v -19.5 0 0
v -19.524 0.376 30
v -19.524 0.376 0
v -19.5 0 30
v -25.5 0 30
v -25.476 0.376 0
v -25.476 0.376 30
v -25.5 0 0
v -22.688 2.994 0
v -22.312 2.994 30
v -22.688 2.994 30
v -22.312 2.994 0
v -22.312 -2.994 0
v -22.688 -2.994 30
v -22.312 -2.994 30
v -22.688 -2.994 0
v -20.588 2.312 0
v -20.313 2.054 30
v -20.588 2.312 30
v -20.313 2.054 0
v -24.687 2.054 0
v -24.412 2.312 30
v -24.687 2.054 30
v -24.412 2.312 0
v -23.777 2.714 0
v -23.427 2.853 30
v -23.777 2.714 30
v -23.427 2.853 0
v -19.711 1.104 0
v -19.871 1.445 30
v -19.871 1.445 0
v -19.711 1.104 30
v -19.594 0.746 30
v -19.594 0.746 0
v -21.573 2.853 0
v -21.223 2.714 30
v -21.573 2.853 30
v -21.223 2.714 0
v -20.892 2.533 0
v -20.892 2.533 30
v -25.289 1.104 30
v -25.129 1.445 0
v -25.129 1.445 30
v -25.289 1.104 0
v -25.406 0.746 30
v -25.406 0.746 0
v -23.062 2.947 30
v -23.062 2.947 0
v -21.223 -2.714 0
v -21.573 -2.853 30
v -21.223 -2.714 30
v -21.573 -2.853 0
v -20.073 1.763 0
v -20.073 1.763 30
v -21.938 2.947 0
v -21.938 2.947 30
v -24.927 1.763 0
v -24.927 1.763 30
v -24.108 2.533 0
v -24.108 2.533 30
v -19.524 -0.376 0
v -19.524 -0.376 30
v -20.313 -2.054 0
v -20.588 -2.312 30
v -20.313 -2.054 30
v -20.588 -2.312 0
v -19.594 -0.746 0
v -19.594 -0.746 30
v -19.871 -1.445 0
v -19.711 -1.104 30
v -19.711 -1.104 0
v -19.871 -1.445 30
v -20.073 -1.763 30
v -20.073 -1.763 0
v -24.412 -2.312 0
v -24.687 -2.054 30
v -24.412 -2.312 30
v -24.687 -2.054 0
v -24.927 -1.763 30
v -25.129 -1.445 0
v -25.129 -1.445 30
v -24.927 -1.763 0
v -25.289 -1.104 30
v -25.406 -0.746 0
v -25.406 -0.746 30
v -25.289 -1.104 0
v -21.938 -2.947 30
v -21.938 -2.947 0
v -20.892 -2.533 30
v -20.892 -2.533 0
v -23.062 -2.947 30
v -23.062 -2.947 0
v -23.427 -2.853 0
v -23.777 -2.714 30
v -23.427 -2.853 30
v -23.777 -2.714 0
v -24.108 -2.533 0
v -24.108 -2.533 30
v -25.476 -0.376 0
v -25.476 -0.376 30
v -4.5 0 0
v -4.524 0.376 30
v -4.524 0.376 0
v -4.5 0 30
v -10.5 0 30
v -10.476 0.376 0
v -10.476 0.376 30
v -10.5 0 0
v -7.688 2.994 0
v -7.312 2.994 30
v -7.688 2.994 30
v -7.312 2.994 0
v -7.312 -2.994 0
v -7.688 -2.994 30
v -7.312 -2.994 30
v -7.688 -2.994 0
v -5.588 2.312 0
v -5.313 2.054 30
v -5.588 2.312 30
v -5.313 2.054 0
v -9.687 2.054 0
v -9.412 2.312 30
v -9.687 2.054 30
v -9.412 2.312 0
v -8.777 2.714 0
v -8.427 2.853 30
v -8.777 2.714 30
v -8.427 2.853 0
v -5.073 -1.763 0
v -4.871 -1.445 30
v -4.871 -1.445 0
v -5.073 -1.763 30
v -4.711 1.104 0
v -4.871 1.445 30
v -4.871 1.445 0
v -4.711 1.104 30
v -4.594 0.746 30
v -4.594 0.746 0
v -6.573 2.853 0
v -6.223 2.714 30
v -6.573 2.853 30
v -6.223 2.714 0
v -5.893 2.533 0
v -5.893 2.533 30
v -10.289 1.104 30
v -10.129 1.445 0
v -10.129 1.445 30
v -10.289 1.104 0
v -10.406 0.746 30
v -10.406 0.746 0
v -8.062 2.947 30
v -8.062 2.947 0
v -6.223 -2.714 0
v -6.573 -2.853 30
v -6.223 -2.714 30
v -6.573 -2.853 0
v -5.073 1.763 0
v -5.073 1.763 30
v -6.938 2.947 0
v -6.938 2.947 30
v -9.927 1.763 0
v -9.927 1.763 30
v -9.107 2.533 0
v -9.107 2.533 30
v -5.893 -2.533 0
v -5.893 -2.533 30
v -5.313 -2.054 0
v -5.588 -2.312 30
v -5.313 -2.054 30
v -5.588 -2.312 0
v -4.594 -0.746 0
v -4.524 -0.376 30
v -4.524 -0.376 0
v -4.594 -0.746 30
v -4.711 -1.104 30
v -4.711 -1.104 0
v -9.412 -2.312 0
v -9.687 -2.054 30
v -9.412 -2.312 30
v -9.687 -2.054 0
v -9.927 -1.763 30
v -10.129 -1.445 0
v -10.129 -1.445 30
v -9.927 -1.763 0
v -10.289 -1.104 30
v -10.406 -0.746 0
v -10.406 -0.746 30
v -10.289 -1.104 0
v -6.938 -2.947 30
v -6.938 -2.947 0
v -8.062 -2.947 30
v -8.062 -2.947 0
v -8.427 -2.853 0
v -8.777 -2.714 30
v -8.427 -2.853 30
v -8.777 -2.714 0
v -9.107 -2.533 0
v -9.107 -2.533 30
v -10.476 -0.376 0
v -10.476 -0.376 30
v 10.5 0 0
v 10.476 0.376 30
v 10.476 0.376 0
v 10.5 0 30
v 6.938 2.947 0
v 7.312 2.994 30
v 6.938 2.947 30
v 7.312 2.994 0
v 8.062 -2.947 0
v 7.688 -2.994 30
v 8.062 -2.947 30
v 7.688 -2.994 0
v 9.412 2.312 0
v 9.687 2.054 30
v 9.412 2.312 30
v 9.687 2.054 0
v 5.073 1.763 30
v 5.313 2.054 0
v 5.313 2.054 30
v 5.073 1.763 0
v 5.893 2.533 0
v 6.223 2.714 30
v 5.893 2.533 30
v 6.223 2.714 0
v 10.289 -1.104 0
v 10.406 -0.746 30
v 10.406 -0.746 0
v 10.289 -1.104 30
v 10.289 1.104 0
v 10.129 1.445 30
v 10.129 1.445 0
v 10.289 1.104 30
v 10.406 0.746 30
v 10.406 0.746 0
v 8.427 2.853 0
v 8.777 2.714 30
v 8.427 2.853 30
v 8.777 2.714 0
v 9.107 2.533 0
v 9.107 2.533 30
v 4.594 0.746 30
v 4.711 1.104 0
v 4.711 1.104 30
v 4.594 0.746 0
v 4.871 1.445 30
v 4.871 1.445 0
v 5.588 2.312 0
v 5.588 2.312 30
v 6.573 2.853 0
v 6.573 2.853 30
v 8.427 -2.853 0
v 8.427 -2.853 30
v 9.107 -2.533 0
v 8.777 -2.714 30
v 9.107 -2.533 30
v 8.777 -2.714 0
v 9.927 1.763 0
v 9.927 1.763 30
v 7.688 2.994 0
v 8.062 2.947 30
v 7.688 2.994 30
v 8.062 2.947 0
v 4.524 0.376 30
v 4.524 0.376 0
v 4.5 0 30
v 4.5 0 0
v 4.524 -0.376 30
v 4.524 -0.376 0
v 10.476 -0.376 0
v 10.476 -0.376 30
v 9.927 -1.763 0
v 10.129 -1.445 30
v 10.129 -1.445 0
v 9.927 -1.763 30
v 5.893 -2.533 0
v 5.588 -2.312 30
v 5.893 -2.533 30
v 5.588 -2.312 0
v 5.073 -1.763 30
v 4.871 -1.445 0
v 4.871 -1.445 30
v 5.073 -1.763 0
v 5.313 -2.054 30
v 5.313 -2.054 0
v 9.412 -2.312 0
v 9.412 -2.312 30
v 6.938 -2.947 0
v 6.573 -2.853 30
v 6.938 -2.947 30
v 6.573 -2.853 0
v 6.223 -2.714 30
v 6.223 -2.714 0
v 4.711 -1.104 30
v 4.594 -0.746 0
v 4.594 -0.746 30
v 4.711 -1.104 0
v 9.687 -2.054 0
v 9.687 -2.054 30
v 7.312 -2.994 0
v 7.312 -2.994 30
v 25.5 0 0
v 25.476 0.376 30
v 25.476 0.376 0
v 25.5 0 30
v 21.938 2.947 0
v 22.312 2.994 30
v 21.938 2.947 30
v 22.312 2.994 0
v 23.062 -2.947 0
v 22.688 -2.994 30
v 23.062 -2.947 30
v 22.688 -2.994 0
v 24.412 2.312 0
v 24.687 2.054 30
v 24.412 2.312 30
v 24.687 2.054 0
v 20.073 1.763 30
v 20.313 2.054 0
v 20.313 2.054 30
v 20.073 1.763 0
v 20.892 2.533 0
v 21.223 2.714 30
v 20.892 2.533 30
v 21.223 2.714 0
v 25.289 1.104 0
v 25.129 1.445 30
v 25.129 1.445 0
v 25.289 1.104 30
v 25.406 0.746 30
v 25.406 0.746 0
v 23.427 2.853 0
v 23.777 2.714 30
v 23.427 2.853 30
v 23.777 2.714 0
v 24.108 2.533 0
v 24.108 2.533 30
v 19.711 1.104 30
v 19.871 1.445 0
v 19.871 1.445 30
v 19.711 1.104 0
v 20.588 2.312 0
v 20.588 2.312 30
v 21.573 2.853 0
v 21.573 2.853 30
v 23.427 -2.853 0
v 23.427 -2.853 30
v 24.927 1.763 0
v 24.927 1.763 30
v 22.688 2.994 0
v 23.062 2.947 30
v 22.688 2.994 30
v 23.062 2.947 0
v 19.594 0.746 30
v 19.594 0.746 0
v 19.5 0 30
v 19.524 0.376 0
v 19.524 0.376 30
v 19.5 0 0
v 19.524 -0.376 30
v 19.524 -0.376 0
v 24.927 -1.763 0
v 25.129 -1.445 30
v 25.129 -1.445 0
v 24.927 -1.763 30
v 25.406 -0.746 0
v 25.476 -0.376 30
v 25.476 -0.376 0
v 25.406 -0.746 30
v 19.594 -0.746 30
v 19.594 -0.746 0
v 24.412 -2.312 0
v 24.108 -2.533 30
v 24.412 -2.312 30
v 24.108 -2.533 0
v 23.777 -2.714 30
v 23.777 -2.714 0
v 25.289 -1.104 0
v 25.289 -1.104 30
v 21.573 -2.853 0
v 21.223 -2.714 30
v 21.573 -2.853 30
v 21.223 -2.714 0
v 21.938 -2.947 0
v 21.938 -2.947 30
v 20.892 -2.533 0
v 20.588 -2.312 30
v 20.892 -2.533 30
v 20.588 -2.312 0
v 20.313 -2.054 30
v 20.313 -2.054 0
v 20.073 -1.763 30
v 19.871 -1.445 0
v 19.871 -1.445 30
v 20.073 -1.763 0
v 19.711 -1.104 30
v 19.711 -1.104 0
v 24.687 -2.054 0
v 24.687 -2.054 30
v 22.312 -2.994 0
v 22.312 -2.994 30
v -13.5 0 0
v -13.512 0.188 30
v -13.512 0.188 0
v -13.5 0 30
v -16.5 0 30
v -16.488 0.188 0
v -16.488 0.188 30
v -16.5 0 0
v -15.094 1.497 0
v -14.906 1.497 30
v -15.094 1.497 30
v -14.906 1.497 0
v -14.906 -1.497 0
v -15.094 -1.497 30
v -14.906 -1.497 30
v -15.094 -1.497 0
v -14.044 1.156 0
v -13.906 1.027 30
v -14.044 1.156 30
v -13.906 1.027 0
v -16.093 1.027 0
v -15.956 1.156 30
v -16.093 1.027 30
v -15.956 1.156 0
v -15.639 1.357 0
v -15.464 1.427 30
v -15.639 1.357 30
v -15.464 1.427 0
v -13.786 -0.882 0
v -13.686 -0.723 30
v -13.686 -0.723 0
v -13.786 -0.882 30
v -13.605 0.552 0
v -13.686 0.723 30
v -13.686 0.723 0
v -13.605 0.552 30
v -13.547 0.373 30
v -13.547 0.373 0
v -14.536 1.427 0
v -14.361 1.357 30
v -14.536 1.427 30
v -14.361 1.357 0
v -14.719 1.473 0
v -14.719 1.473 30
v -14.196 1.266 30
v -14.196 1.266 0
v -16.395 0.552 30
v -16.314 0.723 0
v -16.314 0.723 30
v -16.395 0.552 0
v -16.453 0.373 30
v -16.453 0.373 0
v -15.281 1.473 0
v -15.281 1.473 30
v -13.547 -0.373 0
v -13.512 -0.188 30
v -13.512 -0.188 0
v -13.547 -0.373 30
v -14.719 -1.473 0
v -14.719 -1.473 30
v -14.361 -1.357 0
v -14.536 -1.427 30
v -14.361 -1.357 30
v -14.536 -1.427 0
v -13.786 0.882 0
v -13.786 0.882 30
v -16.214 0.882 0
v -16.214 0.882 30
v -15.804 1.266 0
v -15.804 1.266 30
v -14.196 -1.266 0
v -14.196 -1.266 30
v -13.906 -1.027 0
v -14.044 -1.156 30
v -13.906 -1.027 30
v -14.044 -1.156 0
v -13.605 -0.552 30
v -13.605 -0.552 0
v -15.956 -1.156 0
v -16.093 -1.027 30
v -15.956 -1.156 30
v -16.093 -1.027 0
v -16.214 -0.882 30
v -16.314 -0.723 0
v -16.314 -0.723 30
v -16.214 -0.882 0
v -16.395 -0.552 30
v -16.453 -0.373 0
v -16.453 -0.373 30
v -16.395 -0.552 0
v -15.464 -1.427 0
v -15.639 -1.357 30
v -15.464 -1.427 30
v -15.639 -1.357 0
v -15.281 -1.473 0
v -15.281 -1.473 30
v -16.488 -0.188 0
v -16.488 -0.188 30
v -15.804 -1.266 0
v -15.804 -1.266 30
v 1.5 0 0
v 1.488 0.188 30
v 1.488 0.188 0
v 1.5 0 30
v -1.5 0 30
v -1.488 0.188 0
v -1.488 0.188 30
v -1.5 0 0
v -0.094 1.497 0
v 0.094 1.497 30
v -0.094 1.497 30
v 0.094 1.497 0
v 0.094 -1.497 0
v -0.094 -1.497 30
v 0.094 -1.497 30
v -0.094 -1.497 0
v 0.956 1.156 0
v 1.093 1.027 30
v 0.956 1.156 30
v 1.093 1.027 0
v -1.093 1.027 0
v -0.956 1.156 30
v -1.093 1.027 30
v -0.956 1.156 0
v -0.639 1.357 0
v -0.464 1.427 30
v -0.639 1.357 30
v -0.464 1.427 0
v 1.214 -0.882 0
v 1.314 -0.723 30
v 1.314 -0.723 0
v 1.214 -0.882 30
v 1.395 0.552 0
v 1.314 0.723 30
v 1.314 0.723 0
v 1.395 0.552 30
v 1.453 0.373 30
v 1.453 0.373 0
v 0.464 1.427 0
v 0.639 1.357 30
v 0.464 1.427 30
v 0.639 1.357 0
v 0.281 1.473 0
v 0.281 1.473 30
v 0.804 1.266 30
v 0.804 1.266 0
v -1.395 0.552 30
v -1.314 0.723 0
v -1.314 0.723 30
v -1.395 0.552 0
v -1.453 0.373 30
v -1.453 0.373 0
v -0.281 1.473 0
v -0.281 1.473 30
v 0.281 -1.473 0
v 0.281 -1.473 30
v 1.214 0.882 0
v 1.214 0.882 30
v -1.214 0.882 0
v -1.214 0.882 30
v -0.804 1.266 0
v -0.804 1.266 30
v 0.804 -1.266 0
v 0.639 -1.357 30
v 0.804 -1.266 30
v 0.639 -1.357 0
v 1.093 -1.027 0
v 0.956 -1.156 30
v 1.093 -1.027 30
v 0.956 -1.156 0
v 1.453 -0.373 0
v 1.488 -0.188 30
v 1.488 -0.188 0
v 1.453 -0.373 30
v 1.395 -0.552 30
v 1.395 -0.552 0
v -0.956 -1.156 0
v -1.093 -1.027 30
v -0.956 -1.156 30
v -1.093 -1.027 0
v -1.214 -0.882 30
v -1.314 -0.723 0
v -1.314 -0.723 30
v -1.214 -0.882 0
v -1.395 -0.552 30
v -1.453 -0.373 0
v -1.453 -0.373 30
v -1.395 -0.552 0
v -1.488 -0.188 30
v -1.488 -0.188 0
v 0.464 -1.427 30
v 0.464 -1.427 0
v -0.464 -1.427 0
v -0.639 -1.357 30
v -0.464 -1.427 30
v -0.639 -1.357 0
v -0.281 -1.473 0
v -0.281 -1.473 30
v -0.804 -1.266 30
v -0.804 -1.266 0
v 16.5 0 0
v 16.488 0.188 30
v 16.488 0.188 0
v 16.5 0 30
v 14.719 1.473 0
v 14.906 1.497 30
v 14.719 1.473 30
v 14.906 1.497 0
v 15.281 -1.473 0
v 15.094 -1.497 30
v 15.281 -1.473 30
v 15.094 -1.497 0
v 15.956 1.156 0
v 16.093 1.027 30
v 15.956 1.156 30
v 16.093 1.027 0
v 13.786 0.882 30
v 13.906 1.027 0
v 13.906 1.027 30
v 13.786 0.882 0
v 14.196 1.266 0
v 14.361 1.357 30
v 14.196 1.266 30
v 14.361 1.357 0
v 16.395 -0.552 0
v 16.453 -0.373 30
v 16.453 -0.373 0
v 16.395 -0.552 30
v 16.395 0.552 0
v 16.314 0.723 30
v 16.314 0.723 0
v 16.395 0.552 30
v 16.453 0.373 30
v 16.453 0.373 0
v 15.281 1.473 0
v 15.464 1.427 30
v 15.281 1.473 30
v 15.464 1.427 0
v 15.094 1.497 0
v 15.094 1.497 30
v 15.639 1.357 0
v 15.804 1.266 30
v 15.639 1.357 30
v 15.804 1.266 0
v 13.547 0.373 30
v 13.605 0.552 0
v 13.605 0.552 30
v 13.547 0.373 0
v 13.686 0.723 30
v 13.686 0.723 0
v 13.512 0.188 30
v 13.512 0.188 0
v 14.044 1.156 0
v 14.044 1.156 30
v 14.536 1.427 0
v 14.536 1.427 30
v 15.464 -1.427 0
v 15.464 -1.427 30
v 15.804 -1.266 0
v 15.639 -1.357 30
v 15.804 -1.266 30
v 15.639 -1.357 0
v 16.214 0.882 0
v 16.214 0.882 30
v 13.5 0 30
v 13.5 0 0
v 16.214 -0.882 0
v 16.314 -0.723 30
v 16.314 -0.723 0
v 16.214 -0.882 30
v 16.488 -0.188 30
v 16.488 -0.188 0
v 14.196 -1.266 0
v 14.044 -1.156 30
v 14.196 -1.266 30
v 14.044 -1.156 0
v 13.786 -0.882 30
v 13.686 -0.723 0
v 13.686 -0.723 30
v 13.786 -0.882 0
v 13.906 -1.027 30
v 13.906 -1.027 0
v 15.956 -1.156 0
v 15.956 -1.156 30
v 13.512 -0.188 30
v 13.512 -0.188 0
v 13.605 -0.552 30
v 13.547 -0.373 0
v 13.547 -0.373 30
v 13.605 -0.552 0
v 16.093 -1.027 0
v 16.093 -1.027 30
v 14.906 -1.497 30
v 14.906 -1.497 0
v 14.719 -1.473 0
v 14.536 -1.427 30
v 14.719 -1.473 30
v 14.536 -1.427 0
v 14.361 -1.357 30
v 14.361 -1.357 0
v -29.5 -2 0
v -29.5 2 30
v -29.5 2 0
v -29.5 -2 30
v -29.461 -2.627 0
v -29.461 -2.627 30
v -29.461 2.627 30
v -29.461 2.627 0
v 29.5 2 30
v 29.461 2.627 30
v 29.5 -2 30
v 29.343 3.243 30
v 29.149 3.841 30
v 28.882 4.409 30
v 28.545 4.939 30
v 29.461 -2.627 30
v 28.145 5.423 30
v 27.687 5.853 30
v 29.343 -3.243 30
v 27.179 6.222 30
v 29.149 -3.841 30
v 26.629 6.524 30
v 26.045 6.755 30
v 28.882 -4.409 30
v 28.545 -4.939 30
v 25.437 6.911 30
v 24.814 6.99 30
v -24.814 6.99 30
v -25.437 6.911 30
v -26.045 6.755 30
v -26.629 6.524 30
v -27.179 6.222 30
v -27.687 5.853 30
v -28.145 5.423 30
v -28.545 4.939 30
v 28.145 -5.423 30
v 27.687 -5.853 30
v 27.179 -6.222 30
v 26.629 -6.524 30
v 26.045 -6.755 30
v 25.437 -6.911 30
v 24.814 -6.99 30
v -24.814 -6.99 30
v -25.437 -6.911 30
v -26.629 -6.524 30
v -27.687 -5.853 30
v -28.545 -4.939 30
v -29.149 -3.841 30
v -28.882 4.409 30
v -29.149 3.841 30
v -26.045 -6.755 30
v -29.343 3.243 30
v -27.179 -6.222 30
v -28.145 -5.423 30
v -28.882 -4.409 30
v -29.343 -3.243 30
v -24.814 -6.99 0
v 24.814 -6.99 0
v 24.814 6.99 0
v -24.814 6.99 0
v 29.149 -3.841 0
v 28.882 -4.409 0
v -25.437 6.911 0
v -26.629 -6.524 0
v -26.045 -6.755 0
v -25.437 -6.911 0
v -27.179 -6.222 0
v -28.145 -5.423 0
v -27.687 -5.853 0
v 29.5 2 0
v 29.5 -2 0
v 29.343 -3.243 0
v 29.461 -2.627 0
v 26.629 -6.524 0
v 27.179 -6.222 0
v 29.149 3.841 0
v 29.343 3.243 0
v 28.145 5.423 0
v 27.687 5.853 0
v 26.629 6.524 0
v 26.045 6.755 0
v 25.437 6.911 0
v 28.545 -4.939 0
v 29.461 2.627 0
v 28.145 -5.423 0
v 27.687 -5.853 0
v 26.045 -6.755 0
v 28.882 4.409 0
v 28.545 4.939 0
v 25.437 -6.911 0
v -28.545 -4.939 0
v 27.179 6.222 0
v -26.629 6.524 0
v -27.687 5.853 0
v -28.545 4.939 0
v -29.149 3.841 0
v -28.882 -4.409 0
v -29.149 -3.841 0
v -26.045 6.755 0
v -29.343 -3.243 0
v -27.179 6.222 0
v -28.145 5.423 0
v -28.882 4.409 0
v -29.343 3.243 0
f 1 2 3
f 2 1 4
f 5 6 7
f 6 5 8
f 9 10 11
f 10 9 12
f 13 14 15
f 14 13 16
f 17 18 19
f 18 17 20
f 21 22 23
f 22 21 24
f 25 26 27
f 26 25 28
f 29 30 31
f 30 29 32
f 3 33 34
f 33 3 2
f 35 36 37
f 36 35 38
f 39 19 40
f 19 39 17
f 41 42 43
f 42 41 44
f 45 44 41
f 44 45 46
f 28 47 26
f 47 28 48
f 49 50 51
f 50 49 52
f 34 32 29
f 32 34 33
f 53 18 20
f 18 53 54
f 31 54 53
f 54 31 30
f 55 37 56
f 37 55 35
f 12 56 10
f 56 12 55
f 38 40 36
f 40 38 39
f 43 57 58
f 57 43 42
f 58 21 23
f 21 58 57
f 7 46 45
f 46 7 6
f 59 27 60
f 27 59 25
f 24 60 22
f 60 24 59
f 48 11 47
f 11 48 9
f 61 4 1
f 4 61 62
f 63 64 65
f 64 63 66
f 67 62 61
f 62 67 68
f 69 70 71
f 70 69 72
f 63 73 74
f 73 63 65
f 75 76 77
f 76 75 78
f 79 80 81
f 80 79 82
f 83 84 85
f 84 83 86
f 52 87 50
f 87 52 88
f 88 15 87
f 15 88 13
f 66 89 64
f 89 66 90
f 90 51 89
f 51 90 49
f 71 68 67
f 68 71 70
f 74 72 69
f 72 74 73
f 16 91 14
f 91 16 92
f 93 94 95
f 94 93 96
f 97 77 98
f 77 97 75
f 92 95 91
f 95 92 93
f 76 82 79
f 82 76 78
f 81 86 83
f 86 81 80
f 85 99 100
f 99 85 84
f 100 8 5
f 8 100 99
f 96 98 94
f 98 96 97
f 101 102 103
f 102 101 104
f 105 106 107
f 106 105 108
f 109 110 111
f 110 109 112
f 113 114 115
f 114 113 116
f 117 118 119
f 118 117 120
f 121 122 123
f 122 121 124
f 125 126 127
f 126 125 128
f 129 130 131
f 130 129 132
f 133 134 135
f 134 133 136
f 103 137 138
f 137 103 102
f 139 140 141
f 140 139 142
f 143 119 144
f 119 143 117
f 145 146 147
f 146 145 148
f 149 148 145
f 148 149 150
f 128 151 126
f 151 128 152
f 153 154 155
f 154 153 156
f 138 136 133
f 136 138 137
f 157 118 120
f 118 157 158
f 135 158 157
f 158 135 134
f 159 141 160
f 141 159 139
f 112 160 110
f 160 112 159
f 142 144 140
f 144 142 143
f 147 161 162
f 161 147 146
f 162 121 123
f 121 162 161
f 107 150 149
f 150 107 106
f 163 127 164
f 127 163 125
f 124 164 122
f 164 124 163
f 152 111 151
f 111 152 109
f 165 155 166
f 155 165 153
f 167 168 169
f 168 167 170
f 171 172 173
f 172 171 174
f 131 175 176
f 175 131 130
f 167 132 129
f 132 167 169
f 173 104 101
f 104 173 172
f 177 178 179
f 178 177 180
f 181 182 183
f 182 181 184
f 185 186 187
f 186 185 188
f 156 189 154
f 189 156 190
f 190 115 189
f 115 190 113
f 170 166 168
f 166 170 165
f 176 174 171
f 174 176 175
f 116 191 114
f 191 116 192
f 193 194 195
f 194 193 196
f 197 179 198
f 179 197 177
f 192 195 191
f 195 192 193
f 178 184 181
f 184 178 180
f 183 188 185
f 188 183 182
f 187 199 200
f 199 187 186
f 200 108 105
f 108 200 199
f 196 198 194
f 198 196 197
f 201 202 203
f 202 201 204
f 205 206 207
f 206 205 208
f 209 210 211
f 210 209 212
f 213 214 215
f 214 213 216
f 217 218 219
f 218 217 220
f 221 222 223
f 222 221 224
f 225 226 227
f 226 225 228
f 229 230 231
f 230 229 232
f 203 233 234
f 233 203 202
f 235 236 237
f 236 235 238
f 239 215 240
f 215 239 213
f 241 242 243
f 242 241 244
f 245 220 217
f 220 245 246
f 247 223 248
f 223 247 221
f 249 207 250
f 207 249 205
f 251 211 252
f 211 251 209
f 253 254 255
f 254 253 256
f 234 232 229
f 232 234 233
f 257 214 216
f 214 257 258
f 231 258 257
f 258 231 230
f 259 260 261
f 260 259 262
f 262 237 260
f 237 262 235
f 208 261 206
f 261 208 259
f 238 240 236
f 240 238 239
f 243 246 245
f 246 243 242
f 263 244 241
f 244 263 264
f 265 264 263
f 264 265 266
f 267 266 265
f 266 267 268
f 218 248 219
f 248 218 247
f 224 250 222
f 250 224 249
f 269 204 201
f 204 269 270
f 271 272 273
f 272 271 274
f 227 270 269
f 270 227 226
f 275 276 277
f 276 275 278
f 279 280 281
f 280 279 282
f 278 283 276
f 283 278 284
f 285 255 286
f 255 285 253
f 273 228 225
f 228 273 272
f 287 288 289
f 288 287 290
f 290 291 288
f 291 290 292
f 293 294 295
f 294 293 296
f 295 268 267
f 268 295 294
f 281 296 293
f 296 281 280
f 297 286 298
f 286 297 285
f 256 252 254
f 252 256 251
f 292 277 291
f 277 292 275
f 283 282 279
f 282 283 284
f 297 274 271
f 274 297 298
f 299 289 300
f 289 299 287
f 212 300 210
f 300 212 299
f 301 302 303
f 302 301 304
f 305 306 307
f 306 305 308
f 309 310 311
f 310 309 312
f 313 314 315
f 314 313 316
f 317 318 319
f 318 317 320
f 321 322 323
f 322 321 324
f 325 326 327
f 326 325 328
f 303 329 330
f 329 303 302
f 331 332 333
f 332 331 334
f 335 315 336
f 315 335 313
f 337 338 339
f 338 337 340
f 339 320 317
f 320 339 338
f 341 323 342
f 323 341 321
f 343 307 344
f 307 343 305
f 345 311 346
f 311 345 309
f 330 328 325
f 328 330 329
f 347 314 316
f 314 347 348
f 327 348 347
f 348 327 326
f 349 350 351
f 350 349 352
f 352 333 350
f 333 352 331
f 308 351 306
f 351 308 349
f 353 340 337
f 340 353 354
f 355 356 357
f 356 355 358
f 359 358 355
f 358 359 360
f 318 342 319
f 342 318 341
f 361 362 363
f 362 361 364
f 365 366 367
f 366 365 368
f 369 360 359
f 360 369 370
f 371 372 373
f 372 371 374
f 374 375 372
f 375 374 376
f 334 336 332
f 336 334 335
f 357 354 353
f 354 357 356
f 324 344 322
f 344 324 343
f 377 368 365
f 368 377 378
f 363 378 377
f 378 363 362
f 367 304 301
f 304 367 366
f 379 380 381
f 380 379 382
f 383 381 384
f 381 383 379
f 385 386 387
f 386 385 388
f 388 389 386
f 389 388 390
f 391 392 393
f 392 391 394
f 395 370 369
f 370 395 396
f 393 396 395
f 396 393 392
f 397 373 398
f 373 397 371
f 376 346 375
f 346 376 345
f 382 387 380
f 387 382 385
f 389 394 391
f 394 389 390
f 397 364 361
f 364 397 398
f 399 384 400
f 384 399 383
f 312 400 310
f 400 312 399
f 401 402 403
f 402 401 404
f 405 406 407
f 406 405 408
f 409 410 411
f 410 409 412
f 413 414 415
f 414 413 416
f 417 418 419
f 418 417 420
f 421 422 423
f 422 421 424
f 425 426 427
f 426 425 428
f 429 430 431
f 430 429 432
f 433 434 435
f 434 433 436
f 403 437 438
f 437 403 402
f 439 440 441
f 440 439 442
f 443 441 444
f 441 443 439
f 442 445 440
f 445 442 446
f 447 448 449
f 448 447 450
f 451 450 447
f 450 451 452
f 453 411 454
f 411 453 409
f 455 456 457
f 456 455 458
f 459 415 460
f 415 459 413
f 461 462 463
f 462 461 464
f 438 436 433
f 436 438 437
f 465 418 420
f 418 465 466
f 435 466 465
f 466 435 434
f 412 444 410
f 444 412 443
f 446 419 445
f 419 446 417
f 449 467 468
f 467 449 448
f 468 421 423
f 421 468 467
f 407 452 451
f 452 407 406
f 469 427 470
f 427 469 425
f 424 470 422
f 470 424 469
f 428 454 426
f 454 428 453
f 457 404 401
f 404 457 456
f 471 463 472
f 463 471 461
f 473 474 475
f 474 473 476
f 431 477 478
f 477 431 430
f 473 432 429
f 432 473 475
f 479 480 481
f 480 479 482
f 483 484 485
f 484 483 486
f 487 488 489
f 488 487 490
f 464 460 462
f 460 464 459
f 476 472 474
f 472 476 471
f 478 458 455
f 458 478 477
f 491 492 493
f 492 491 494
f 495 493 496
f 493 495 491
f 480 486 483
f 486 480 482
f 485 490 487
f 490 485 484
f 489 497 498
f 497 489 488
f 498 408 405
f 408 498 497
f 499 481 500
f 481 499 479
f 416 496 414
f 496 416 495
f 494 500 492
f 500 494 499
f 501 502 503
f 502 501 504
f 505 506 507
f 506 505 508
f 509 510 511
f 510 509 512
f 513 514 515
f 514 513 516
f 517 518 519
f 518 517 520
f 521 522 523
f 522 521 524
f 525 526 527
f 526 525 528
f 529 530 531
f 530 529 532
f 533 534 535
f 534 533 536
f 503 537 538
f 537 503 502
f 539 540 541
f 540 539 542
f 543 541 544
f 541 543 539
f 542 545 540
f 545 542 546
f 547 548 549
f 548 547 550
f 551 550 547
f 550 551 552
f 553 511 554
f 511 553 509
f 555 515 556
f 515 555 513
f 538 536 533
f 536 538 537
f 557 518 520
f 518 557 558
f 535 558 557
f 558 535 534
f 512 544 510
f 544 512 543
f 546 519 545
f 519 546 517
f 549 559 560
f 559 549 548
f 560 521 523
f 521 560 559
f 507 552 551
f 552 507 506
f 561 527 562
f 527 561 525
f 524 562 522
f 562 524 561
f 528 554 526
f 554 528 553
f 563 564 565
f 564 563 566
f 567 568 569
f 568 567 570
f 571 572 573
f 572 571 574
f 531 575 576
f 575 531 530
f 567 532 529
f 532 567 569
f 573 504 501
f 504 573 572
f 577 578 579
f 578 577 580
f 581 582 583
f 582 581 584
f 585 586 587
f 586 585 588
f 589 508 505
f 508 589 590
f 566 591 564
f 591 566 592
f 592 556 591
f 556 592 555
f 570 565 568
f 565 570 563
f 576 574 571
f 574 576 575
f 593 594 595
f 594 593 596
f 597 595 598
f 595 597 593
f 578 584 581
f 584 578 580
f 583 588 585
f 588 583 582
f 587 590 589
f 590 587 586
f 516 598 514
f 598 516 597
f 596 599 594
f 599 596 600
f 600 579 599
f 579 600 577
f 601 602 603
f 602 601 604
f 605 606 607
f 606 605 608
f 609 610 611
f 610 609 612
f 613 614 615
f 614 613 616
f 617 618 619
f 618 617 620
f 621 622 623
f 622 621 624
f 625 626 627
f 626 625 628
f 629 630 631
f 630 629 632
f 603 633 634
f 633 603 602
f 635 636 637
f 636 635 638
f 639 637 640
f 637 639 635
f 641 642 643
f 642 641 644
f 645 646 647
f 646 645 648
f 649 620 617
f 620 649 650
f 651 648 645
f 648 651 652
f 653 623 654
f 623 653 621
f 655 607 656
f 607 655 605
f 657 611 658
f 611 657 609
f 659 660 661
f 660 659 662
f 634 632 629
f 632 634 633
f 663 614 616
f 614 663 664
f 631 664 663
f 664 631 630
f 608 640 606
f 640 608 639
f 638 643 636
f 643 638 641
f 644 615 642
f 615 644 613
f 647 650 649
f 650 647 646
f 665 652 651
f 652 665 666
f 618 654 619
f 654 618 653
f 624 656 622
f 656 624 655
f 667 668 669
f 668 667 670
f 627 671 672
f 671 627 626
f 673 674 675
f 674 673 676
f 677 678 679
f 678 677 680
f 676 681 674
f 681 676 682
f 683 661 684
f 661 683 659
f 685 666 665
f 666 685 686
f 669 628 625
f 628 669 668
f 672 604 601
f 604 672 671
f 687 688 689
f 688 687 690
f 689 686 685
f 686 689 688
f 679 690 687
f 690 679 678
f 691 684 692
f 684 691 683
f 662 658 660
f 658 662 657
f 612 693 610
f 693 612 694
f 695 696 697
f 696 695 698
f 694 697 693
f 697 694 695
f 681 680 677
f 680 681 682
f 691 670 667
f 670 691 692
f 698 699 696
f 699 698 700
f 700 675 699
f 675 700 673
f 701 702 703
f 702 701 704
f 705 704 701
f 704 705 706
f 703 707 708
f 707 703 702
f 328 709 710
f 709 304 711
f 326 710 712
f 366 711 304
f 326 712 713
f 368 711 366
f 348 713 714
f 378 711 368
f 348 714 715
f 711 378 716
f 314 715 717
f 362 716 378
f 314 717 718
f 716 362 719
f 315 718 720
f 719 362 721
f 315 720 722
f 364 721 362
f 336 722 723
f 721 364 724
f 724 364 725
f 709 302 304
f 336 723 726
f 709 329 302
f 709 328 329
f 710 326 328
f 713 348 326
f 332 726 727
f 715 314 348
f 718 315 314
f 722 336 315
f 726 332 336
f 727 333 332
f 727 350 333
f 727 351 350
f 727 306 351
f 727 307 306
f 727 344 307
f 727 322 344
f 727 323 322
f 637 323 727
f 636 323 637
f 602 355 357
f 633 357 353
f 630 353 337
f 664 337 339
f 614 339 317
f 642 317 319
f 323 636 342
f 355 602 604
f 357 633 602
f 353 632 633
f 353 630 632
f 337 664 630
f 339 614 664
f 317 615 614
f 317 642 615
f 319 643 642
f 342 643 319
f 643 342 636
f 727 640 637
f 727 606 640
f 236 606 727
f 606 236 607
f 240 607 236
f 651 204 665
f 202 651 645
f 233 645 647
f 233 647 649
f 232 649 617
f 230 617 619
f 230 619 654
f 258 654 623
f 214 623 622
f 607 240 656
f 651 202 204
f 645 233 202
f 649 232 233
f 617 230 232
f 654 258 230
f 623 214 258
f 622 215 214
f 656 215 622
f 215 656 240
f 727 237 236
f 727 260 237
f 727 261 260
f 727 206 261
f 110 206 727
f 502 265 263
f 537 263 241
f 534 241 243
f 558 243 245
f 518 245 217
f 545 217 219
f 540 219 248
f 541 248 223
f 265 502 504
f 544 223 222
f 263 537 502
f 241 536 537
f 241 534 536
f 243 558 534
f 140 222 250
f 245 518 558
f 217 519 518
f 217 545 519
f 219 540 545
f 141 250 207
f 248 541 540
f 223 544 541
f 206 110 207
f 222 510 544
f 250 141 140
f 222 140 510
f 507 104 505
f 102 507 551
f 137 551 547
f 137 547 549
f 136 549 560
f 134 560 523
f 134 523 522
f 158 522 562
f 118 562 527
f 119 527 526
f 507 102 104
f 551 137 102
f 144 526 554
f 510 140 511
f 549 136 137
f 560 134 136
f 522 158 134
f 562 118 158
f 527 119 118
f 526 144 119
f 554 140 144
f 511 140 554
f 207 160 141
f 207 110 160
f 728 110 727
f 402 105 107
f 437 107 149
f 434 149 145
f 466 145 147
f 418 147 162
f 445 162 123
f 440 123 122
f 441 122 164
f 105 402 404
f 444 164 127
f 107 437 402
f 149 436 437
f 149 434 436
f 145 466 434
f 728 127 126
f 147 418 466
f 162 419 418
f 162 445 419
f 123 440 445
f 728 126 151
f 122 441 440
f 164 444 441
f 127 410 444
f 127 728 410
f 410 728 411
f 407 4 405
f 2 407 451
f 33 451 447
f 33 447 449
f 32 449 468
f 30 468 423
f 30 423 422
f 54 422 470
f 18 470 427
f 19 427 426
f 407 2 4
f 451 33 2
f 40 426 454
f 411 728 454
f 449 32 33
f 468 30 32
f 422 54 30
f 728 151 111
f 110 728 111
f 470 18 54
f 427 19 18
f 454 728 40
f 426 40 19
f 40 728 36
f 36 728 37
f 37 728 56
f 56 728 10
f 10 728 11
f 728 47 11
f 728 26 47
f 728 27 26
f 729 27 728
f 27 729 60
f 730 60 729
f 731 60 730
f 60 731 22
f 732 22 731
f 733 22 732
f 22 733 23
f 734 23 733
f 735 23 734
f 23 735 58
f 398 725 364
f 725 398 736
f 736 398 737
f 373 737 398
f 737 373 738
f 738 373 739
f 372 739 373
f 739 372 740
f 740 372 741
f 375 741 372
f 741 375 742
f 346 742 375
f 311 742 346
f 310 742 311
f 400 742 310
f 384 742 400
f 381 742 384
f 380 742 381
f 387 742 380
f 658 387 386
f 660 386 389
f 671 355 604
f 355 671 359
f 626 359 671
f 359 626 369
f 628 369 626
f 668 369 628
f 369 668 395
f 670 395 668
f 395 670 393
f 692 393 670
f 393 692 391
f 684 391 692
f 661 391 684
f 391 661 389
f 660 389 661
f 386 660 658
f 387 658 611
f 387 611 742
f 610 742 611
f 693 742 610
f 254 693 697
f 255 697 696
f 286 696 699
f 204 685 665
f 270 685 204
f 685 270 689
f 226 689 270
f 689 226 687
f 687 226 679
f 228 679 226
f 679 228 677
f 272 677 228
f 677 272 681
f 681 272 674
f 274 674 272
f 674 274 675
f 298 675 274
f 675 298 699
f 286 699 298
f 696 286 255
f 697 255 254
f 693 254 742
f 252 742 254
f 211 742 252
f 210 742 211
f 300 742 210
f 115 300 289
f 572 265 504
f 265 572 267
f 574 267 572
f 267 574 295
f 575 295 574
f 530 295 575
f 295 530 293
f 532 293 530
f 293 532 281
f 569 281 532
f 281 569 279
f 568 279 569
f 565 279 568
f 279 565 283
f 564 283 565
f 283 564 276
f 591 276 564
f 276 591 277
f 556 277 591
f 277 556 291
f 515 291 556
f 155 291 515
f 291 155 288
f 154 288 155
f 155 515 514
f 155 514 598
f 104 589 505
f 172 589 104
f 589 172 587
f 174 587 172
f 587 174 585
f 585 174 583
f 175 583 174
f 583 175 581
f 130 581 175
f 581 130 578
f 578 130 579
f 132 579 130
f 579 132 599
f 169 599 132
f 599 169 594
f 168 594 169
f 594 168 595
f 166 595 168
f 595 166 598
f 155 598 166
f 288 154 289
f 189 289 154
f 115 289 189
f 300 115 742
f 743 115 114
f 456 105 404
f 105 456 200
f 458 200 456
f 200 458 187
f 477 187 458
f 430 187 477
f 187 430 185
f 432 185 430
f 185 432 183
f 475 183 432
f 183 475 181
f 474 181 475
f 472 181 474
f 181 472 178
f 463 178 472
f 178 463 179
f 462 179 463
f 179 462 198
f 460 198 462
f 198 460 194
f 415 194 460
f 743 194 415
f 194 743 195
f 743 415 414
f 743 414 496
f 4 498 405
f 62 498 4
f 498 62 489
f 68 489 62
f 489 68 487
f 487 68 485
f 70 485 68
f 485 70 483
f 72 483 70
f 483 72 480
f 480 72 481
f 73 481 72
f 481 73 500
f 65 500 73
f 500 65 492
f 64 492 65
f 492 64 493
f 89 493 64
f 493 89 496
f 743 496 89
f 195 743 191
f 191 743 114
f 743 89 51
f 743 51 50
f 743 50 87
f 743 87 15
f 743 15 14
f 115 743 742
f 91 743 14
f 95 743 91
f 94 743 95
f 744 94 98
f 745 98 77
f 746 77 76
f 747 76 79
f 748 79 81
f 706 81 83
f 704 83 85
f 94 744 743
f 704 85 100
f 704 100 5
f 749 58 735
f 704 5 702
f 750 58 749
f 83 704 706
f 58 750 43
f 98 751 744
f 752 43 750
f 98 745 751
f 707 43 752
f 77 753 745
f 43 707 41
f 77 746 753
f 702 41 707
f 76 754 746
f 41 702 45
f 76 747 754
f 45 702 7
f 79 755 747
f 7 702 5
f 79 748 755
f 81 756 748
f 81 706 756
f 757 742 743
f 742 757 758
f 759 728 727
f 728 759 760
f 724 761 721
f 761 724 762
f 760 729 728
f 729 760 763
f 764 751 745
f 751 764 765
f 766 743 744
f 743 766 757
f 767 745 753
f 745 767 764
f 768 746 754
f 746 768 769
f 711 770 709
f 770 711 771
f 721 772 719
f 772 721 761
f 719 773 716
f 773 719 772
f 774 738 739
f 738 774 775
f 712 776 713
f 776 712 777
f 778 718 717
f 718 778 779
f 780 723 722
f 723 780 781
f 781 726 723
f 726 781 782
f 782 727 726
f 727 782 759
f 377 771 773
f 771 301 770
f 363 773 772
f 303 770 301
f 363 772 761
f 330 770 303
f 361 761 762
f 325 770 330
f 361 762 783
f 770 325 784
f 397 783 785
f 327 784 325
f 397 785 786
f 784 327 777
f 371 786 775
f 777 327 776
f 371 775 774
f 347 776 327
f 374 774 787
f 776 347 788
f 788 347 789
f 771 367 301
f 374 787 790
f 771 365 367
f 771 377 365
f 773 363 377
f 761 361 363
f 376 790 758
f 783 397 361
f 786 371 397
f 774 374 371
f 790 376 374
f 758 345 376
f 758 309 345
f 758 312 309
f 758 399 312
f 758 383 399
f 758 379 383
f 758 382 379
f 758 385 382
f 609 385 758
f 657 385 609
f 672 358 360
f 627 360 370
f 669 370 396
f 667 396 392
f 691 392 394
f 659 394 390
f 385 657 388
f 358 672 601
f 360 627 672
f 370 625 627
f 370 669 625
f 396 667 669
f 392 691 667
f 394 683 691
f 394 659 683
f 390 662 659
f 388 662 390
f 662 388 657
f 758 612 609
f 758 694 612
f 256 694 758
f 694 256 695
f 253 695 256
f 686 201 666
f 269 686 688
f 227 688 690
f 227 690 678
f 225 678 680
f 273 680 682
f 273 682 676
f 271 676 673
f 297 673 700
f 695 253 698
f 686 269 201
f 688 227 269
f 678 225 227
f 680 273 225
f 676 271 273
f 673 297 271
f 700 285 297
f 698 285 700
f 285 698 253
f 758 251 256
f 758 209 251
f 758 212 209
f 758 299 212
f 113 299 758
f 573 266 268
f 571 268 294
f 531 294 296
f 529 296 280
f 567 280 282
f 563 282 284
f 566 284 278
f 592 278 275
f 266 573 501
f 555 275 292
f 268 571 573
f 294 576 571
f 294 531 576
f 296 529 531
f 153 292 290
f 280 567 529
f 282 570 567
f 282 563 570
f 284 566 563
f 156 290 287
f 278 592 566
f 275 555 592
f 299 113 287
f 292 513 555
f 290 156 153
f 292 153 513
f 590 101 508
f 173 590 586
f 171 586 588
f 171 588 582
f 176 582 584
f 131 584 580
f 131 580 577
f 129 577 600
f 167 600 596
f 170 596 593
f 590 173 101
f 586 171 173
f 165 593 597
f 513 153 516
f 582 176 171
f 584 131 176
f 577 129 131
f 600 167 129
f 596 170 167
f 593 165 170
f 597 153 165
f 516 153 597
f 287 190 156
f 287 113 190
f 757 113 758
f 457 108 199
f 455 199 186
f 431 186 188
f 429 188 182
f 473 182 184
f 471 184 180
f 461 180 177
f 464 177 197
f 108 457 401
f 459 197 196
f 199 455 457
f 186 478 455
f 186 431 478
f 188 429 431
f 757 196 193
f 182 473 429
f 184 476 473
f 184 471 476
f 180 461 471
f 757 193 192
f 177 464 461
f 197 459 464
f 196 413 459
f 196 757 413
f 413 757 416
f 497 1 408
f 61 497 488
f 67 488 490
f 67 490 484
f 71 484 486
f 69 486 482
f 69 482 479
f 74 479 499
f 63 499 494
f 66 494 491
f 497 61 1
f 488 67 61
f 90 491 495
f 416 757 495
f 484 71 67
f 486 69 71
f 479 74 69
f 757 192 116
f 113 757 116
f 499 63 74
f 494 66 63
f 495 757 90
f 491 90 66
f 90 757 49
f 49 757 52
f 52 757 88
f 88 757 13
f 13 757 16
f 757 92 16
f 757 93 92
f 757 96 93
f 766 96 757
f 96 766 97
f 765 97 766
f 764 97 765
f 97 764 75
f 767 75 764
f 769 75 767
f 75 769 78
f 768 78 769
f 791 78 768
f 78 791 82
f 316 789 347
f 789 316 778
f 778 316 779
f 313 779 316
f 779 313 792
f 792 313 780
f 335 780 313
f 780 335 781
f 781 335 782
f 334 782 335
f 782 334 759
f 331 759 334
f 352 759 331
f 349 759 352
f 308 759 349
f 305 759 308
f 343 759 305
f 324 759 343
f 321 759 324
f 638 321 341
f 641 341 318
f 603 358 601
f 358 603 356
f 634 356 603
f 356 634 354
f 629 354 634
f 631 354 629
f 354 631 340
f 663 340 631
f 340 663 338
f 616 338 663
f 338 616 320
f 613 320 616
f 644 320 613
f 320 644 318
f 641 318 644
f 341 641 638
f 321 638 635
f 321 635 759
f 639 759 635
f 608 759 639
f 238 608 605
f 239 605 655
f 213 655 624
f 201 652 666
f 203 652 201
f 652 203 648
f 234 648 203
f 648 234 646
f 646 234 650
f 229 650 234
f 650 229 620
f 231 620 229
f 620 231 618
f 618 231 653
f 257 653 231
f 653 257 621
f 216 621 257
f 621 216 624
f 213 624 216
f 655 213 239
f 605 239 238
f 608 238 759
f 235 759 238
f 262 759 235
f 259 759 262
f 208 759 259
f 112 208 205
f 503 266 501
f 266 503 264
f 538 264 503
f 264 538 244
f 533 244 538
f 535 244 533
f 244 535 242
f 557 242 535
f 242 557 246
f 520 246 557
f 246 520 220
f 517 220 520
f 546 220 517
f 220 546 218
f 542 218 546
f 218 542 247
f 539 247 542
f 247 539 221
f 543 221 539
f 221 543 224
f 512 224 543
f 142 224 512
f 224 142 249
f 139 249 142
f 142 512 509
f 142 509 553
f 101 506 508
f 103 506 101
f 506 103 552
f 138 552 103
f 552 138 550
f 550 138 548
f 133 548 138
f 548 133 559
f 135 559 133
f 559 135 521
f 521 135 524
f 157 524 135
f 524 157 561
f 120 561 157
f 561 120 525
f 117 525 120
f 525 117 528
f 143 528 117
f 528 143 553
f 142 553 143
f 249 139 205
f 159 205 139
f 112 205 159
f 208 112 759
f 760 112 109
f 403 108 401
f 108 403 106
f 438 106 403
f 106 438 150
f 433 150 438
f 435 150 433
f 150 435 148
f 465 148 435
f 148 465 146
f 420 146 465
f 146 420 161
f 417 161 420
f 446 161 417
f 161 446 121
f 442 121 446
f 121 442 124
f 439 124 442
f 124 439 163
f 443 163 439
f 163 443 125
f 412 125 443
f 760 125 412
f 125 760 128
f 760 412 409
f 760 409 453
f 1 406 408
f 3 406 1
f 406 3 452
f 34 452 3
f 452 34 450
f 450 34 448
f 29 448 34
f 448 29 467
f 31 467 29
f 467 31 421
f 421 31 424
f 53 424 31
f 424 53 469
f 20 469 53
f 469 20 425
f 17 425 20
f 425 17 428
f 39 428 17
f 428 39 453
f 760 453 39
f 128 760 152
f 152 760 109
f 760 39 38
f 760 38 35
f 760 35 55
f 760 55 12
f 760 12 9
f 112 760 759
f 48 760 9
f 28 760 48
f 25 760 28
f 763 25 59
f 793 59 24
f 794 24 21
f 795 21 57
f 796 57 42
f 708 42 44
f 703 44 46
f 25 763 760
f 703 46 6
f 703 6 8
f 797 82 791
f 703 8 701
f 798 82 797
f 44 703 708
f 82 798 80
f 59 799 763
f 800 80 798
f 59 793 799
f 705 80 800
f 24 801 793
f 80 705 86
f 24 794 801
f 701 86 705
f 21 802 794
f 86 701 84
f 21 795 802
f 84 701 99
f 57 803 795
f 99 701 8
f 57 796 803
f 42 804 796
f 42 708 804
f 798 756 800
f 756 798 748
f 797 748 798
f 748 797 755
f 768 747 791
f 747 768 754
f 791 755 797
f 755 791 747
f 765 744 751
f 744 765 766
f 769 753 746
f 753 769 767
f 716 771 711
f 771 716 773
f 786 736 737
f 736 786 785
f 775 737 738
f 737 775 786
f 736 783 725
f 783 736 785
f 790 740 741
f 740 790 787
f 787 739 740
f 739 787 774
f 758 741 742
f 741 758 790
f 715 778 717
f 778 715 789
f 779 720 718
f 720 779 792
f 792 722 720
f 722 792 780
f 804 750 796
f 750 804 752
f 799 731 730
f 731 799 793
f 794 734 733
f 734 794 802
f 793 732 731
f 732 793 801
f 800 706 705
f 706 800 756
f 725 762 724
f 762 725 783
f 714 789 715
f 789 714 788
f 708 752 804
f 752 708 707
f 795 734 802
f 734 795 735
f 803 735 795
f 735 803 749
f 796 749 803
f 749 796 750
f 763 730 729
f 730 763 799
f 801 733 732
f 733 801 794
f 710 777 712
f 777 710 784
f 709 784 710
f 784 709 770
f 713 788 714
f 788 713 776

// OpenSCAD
$fn = 50;


difference() {
	union() {
		translate(v = [0, 0, 0]) {
			rotate(a = [0, 0, 0]) {
				hull() {
					translate(v = [-24.5000000000, 2.0000000000, 0]) {
						rotate(a = [0, 0, 0]) {
							translate(v = [0, 0, 0]) {
								rotate(a = [0, 0, 0]) {
									cylinder(h = 30, r = 5);
								}
							}
						}
					}
					translate(v = [24.5000000000, 2.0000000000, 0]) {
						rotate(a = [0, 0, 0]) {
							translate(v = [0, 0, 0]) {
								rotate(a = [0, 0, 0]) {
									cylinder(h = 30, r = 5);
								}
							}
						}
					}
					translate(v = [-24.5000000000, -2.0000000000, 0]) {
						rotate(a = [0, 0, 0]) {
							translate(v = [0, 0, 0]) {
								rotate(a = [0, 0, 0]) {
									cylinder(h = 30, r = 5);
								}
							}
						}
					}
					translate(v = [24.5000000000, -2.0000000000, 0]) {
						rotate(a = [0, 0, 0]) {
							translate(v = [0, 0, 0]) {
								rotate(a = [0, 0, 0]) {
									cylinder(h = 30, r = 5);
								}
							}
						}
					}
				}
			}
		}
	}
	union() {
		translate(v = [-22.5000000000, 0.0000000000, 0]) {
			rotate(a = [0, 0, 0]) {
				translate(v = [0, 0, -50]) {
					rotate(a = [0, 0, 0]) {
						cylinder(h = 100, r = 3.0000000000);
					}
				}
			}
		}
		translate(v = [-7.5000000000, 0.0000000000, 0]) {
			rotate(a = [0, 0, 0]) {
				translate(v = [0, 0, -50]) {
					rotate(a = [0, 0, 0]) {
						cylinder(h = 100, r = 3.0000000000);
					}
				}
			}
		}
		translate(v = [7.5000000000, 0.0000000000, 0]) {
			rotate(a = [0, 0, 0]) {
				translate(v = [0, 0, -50]) {
					rotate(a = [0, 0, 0]) {
						cylinder(h = 100, r = 3.0000000000);
					}
				}
			}
		}
		translate(v = [22.5000000000, 0.0000000000, 0]) {
			rotate(a = [0, 0, 0]) {
				translate(v = [0, 0, -50]) {
					rotate(a = [0, 0, 0]) {
						cylinder(h = 100, r = 3.0000000000);
					}
				}
			}
		}
		translate(v = [-22.5000000000, 0.0000000000, 0]) {
			rotate(a = [0, 0, 0]) {
				translate(v = [0, 0, -50]) {
					rotate(a = [0, 0, 0]) {
						cylinder(h = 100, r = 1.5000000000);
					}
				}
			}
		}
		translate(v = [-15.0000000000, 0.0000000000, 0]) {
			rotate(a = [0, 0, 0]) {
				translate(v = [0, 0, -50]) {
					rotate(a = [0, 0, 0]) {
						cylinder(h = 100, r = 1.5000000000);
					}
				}
			}
		}
		translate(v = [-7.5000000000, 0.0000000000, 0]) {
			rotate(a = [0, 0, 0]) {
				translate(v = [0, 0, -50]) {
					rotate(a = [0, 0, 0]) {
						cylinder(h = 100, r = 1.5000000000);
					}
				}
			}
		}
		translate(v = [0.0000000000, 0.0000000000, 0]) {
			rotate(a = [0, 0, 0]) {
				translate(v = [0, 0, -50]) {
					rotate(a = [0, 0, 0]) {
						cylinder(h = 100, r = 1.5000000000);
					}
				}
			}
		}
		translate(v = [7.5000000000, 0.0000000000, 0]) {
			rotate(a = [0, 0, 0]) {
				translate(v = [0, 0, -50]) {
					rotate(a = [0, 0, 0]) {
						cylinder(h = 100, r = 1.5000000000);
					}
				}
			}
		}
		translate(v = [15.0000000000, 0.0000000000, 0]) {
			rotate(a = [0, 0, 0]) {
				translate(v = [0, 0, -50]) {
					rotate(a = [0, 0, 0]) {
						cylinder(h = 100, r = 1.5000000000);
					}
				}
			}
		}
		translate(v = [22.5000000000, 0.0000000000, 0]) {
			rotate(a = [0, 0, 0]) {
				translate(v = [0, 0, -50]) {
					rotate(a = [0, 0, 0]) {
						cylinder(h = 100, r = 1.5000000000);
					}
				}
			}
		}
	}
}
